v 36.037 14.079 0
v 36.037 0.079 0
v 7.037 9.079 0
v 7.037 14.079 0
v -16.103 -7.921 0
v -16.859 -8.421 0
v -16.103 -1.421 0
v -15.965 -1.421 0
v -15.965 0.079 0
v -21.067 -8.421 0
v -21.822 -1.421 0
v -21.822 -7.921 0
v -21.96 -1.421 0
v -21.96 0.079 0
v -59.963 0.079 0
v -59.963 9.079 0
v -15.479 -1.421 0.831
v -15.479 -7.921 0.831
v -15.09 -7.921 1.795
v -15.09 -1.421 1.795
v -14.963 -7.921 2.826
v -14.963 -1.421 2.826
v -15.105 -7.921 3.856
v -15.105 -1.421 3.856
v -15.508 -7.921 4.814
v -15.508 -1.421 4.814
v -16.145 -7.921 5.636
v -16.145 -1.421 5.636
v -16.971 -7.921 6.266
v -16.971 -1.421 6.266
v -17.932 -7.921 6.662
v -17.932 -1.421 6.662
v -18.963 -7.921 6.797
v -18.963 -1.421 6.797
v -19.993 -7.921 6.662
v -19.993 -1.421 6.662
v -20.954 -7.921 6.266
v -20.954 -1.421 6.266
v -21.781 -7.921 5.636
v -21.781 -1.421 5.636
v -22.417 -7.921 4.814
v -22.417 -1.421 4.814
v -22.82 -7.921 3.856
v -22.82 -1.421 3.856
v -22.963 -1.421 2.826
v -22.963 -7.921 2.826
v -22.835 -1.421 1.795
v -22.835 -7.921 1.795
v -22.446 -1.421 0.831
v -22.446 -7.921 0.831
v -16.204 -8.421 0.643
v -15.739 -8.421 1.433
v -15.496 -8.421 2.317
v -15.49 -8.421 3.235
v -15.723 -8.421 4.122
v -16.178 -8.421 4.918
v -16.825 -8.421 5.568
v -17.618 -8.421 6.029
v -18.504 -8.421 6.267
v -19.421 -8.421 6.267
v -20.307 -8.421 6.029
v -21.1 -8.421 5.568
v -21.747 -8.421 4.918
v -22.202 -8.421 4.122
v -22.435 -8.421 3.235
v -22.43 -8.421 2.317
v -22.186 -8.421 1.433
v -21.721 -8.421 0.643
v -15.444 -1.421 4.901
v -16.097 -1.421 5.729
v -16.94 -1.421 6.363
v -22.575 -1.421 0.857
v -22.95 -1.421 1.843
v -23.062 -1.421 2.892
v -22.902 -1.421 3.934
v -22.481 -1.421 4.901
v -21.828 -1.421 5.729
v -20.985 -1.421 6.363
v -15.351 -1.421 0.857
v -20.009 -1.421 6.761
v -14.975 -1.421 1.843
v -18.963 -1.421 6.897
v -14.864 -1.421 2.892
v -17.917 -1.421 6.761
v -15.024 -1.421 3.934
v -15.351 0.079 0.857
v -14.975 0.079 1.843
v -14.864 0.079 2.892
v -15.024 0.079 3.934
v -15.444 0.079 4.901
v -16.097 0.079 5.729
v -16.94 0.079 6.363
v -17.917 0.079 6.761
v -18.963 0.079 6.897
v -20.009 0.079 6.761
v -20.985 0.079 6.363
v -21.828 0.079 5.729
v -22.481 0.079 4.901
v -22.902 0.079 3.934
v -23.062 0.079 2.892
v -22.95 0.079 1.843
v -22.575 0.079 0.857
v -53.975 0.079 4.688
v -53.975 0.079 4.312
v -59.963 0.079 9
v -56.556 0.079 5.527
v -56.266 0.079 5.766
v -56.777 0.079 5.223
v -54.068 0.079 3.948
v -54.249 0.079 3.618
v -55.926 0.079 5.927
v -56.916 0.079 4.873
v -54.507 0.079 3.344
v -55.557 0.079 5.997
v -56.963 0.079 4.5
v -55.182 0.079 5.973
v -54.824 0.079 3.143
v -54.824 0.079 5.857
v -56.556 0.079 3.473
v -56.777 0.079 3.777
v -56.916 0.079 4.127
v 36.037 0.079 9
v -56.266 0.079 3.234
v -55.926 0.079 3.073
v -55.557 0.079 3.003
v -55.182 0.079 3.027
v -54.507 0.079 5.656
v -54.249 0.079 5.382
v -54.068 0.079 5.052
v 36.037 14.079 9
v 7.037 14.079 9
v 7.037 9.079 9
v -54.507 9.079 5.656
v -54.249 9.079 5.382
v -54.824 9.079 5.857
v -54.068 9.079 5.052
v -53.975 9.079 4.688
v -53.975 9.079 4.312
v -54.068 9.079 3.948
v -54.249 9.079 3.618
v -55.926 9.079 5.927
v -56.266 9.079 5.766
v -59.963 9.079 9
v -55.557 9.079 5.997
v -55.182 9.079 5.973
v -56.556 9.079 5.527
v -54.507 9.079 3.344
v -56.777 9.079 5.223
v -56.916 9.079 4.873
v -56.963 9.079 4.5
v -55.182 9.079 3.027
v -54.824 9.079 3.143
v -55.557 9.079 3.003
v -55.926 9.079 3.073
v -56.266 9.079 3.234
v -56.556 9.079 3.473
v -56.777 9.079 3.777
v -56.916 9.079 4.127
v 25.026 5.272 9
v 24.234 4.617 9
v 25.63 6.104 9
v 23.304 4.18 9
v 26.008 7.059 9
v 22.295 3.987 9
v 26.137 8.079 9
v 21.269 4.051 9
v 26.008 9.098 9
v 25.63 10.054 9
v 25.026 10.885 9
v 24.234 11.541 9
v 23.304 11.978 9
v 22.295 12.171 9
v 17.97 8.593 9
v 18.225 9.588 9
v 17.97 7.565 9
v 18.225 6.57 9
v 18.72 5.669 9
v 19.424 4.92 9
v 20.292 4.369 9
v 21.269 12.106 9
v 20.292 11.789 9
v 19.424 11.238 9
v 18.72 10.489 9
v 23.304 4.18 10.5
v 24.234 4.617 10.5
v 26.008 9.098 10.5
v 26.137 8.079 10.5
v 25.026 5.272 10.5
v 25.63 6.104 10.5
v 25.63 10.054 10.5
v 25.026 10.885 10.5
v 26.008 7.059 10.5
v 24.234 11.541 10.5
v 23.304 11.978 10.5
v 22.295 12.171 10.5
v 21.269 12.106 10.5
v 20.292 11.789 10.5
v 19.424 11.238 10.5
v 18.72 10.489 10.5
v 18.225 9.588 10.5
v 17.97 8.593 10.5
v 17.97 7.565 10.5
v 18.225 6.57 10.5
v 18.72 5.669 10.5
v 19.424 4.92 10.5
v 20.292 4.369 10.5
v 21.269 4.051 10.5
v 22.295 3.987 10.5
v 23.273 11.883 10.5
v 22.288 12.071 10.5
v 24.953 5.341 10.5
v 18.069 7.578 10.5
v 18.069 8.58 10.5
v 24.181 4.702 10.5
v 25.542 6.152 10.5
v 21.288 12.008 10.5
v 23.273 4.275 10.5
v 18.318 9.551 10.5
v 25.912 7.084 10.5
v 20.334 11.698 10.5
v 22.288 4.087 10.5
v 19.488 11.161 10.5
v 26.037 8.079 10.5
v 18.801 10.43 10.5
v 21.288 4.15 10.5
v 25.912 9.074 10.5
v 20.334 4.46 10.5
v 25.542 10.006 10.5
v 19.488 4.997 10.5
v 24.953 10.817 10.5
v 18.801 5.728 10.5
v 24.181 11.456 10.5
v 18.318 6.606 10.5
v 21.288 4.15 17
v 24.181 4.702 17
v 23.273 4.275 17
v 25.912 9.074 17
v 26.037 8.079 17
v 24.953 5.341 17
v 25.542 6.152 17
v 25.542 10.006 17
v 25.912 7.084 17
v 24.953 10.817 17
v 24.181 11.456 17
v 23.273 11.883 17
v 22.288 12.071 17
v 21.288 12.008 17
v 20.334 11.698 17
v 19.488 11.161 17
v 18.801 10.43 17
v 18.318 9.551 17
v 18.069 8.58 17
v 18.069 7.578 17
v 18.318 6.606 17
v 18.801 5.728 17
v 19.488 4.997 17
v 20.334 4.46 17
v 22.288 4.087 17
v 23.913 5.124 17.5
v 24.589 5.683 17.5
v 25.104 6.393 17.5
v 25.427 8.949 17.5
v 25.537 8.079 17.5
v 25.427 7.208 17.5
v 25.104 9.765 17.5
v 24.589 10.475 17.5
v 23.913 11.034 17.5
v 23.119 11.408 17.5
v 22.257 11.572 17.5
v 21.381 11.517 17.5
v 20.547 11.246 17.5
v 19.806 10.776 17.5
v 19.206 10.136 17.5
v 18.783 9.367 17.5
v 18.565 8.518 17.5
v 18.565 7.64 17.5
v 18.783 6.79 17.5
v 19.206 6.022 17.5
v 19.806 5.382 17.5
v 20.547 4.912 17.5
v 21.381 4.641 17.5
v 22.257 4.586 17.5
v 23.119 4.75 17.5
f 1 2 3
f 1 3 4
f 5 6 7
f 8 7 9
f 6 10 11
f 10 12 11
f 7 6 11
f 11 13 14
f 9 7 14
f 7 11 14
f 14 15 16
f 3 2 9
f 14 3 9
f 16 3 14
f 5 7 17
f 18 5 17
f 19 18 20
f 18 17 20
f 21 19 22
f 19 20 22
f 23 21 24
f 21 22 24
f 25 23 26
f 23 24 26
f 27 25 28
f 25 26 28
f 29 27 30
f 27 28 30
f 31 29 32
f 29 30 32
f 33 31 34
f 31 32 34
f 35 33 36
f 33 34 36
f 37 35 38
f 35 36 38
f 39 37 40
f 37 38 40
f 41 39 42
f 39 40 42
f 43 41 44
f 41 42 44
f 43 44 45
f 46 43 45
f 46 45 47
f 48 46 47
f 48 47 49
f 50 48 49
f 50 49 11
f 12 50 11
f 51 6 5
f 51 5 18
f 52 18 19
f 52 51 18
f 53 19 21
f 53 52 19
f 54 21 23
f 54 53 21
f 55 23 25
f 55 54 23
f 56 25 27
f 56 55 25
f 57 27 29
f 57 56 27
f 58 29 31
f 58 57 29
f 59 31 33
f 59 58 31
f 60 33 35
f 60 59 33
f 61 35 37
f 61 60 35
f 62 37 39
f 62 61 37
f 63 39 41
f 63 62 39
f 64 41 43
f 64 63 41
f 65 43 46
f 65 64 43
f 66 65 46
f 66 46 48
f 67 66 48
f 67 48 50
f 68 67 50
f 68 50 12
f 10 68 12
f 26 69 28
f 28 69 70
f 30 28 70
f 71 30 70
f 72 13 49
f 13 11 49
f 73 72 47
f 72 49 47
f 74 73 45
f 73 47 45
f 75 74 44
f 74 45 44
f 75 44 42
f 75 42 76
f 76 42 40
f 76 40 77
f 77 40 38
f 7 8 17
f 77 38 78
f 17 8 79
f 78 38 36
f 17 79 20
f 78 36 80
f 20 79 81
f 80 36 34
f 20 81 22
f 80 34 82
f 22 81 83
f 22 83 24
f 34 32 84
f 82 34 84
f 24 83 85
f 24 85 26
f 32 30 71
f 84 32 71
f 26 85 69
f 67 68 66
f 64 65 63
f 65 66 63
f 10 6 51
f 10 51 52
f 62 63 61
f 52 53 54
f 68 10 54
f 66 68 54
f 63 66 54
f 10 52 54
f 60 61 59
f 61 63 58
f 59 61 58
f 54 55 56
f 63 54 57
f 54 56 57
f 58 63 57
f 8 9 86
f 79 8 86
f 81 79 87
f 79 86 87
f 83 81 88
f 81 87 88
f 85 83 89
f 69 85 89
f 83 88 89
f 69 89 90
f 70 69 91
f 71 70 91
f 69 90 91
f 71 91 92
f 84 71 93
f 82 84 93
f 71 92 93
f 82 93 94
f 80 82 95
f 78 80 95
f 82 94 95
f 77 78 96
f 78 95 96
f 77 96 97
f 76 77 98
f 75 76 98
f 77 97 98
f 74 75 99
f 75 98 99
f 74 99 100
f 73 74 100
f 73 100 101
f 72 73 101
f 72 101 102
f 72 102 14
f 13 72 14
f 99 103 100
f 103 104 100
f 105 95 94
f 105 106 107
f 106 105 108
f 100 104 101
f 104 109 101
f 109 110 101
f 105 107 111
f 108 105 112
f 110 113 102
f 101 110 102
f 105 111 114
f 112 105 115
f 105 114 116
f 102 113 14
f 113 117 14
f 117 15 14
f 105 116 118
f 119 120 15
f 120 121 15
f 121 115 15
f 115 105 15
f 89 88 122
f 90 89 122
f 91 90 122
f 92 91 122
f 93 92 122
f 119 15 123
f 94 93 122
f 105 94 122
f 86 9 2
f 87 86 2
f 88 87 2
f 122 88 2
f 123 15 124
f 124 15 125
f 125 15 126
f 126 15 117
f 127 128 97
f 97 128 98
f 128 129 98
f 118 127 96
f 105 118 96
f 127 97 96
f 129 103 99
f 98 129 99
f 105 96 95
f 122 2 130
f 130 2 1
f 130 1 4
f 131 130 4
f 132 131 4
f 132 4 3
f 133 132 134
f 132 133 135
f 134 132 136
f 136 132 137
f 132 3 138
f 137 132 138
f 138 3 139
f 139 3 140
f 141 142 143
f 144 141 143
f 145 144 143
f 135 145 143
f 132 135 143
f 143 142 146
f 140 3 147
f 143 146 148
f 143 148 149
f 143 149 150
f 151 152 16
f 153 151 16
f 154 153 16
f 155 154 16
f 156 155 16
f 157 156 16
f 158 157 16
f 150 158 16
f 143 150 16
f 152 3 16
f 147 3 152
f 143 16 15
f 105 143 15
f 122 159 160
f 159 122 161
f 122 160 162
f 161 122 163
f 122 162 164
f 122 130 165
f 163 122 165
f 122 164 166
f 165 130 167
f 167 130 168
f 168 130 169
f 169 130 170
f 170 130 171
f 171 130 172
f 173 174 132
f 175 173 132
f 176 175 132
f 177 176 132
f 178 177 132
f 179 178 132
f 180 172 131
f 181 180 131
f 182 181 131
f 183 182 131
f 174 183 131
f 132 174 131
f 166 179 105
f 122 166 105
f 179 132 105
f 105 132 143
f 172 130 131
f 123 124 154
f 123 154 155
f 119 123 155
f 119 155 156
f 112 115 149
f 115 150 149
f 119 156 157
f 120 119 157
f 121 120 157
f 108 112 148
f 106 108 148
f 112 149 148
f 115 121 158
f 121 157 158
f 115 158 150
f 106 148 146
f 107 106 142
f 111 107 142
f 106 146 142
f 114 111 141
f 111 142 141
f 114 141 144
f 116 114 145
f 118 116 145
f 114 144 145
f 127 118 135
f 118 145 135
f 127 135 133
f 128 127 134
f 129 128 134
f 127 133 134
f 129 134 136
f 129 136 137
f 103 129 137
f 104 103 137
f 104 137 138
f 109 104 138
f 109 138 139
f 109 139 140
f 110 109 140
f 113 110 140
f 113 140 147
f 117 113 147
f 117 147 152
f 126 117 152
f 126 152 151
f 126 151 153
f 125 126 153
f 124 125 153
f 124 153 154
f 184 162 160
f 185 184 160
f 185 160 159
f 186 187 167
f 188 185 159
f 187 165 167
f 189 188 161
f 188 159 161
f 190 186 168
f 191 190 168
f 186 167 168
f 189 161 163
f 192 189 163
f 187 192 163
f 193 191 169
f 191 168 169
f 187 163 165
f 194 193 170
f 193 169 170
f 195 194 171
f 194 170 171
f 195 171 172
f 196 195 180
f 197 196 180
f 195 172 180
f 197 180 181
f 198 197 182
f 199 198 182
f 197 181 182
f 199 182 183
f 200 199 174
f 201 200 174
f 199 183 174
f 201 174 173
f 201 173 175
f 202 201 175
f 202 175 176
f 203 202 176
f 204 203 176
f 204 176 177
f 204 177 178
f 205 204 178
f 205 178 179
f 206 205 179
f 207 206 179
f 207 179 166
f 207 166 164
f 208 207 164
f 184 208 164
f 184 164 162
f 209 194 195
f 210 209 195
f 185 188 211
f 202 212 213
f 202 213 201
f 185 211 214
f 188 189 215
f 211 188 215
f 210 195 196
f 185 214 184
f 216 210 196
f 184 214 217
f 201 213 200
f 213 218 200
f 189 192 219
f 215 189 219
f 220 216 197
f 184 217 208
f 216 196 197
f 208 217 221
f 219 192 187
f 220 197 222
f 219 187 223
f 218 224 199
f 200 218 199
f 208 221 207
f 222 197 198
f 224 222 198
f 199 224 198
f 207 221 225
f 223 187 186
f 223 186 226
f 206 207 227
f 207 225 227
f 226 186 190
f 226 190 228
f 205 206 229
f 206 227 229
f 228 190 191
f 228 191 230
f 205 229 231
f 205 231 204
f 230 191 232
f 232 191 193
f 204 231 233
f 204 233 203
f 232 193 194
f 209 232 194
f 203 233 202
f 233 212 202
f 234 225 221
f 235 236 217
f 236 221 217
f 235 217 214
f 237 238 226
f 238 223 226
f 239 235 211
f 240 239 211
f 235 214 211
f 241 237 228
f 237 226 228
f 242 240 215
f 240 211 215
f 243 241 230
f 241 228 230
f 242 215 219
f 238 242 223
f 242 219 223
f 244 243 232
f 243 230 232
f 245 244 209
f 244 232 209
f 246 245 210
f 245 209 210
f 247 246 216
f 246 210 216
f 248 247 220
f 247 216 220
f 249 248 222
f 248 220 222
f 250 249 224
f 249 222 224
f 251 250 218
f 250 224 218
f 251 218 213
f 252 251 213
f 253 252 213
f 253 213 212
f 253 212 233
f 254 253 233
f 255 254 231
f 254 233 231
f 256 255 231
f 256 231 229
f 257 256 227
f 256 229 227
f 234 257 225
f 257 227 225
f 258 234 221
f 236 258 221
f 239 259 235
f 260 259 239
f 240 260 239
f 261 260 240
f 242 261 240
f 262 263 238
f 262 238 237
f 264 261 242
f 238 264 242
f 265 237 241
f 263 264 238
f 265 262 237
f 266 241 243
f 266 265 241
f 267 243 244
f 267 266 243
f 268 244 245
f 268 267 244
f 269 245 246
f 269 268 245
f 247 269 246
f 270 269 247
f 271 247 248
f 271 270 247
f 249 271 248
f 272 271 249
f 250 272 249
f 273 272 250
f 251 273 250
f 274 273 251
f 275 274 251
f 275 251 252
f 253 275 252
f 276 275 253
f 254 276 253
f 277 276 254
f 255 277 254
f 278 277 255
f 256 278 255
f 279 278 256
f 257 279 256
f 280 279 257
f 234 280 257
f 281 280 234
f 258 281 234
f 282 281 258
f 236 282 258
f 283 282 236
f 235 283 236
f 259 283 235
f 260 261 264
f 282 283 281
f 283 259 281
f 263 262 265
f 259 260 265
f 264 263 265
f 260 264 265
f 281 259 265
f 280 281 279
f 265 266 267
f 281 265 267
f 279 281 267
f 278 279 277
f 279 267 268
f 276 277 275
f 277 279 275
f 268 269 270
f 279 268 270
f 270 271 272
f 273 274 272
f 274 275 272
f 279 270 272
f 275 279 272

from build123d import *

# Parameters (mm, degrees)
PAD_DEPTH    = 9
SKETCH001_R  = 4.1
PAD001_DEPTH = 1.5
SKETCH002_R  = 4
PAD002_DEPTH = 7
PAD003_DEPTH = 1.5
PAD004_DEPTH = 7
SKETCH005_R  = 1.5
POCKET_DEPTH = 17.501
CHAMFER_SIZE = 0.5


with BuildPart() as part:
    # Sketch → Pad (new body)
    with BuildSketch(Plane.XY):
        Polygon((-59.96273, 0.078839), (36.03727, 0.078839), (36.03727, 14.078839), (7.03727, 14.078839), (7.03727, 9.078839), (-59.96273, 9.078839), align=None)
    extrude(amount=PAD_DEPTH)

    # Sketch001 → Pad001 (new body)
    with BuildSketch(Plane.XY.offset(9)):
        with Locations((22.03727, 8.078839)):
            Circle(SKETCH001_R)
    extrude(amount=PAD001_DEPTH)

    # Sketch002 → Pad002 (new body)
    with BuildSketch(Plane.XY.offset(10.5)):
        with Locations((22.03727, 8.078839)):
            Circle(SKETCH002_R)
    extrude(amount=PAD002_DEPTH)

    # Sketch003 → Pad003 (new body)
    with BuildSketch(Plane.XZ.offset(-0.078839)):
        with BuildLine():
            ThreePointArc((-15.96499, 0), (-18.96273, 6.897062), (-21.960469, 0))
            Line((-21.960469, 0), (-15.96499, 0))
        make_face()
    extrude(amount=PAD003_DEPTH)

    # Sketch004 → Pad004 (new body)
    with BuildSketch(Plane.XZ.offset(1.421161)):
        with BuildLine():
            ThreePointArc((-16.103281, 0), (-18.96273, 6.797062), (-21.822178, 0))
            Line((-21.822178, 0), (-16.103281, 0))
        make_face()
    extrude(amount=PAD004_DEPTH)

    # Sketch005 → Pocket (cut, through all)
    with BuildSketch(Plane(origin=(0, 9.078839, 0), x_dir=(-1, 0, 0), z_dir=(0, 1, 0))):
        with Locations((55.46273, 4.5)):
            Circle(SKETCH005_R)
    extrude(amount=-POCKET_DEPTH, mode=Mode.SUBTRACT)

    # Chamfer
    chamfer_edges = [part.edges().sort_by_distance(p)[0] for p in [
        (-18.96273, -8.421161, 6.797062),
        (18.03727, 8.078839, 17.5),
    ]]
    chamfer(chamfer_edges, length=CHAMFER_SIZE)


solid = part.part
